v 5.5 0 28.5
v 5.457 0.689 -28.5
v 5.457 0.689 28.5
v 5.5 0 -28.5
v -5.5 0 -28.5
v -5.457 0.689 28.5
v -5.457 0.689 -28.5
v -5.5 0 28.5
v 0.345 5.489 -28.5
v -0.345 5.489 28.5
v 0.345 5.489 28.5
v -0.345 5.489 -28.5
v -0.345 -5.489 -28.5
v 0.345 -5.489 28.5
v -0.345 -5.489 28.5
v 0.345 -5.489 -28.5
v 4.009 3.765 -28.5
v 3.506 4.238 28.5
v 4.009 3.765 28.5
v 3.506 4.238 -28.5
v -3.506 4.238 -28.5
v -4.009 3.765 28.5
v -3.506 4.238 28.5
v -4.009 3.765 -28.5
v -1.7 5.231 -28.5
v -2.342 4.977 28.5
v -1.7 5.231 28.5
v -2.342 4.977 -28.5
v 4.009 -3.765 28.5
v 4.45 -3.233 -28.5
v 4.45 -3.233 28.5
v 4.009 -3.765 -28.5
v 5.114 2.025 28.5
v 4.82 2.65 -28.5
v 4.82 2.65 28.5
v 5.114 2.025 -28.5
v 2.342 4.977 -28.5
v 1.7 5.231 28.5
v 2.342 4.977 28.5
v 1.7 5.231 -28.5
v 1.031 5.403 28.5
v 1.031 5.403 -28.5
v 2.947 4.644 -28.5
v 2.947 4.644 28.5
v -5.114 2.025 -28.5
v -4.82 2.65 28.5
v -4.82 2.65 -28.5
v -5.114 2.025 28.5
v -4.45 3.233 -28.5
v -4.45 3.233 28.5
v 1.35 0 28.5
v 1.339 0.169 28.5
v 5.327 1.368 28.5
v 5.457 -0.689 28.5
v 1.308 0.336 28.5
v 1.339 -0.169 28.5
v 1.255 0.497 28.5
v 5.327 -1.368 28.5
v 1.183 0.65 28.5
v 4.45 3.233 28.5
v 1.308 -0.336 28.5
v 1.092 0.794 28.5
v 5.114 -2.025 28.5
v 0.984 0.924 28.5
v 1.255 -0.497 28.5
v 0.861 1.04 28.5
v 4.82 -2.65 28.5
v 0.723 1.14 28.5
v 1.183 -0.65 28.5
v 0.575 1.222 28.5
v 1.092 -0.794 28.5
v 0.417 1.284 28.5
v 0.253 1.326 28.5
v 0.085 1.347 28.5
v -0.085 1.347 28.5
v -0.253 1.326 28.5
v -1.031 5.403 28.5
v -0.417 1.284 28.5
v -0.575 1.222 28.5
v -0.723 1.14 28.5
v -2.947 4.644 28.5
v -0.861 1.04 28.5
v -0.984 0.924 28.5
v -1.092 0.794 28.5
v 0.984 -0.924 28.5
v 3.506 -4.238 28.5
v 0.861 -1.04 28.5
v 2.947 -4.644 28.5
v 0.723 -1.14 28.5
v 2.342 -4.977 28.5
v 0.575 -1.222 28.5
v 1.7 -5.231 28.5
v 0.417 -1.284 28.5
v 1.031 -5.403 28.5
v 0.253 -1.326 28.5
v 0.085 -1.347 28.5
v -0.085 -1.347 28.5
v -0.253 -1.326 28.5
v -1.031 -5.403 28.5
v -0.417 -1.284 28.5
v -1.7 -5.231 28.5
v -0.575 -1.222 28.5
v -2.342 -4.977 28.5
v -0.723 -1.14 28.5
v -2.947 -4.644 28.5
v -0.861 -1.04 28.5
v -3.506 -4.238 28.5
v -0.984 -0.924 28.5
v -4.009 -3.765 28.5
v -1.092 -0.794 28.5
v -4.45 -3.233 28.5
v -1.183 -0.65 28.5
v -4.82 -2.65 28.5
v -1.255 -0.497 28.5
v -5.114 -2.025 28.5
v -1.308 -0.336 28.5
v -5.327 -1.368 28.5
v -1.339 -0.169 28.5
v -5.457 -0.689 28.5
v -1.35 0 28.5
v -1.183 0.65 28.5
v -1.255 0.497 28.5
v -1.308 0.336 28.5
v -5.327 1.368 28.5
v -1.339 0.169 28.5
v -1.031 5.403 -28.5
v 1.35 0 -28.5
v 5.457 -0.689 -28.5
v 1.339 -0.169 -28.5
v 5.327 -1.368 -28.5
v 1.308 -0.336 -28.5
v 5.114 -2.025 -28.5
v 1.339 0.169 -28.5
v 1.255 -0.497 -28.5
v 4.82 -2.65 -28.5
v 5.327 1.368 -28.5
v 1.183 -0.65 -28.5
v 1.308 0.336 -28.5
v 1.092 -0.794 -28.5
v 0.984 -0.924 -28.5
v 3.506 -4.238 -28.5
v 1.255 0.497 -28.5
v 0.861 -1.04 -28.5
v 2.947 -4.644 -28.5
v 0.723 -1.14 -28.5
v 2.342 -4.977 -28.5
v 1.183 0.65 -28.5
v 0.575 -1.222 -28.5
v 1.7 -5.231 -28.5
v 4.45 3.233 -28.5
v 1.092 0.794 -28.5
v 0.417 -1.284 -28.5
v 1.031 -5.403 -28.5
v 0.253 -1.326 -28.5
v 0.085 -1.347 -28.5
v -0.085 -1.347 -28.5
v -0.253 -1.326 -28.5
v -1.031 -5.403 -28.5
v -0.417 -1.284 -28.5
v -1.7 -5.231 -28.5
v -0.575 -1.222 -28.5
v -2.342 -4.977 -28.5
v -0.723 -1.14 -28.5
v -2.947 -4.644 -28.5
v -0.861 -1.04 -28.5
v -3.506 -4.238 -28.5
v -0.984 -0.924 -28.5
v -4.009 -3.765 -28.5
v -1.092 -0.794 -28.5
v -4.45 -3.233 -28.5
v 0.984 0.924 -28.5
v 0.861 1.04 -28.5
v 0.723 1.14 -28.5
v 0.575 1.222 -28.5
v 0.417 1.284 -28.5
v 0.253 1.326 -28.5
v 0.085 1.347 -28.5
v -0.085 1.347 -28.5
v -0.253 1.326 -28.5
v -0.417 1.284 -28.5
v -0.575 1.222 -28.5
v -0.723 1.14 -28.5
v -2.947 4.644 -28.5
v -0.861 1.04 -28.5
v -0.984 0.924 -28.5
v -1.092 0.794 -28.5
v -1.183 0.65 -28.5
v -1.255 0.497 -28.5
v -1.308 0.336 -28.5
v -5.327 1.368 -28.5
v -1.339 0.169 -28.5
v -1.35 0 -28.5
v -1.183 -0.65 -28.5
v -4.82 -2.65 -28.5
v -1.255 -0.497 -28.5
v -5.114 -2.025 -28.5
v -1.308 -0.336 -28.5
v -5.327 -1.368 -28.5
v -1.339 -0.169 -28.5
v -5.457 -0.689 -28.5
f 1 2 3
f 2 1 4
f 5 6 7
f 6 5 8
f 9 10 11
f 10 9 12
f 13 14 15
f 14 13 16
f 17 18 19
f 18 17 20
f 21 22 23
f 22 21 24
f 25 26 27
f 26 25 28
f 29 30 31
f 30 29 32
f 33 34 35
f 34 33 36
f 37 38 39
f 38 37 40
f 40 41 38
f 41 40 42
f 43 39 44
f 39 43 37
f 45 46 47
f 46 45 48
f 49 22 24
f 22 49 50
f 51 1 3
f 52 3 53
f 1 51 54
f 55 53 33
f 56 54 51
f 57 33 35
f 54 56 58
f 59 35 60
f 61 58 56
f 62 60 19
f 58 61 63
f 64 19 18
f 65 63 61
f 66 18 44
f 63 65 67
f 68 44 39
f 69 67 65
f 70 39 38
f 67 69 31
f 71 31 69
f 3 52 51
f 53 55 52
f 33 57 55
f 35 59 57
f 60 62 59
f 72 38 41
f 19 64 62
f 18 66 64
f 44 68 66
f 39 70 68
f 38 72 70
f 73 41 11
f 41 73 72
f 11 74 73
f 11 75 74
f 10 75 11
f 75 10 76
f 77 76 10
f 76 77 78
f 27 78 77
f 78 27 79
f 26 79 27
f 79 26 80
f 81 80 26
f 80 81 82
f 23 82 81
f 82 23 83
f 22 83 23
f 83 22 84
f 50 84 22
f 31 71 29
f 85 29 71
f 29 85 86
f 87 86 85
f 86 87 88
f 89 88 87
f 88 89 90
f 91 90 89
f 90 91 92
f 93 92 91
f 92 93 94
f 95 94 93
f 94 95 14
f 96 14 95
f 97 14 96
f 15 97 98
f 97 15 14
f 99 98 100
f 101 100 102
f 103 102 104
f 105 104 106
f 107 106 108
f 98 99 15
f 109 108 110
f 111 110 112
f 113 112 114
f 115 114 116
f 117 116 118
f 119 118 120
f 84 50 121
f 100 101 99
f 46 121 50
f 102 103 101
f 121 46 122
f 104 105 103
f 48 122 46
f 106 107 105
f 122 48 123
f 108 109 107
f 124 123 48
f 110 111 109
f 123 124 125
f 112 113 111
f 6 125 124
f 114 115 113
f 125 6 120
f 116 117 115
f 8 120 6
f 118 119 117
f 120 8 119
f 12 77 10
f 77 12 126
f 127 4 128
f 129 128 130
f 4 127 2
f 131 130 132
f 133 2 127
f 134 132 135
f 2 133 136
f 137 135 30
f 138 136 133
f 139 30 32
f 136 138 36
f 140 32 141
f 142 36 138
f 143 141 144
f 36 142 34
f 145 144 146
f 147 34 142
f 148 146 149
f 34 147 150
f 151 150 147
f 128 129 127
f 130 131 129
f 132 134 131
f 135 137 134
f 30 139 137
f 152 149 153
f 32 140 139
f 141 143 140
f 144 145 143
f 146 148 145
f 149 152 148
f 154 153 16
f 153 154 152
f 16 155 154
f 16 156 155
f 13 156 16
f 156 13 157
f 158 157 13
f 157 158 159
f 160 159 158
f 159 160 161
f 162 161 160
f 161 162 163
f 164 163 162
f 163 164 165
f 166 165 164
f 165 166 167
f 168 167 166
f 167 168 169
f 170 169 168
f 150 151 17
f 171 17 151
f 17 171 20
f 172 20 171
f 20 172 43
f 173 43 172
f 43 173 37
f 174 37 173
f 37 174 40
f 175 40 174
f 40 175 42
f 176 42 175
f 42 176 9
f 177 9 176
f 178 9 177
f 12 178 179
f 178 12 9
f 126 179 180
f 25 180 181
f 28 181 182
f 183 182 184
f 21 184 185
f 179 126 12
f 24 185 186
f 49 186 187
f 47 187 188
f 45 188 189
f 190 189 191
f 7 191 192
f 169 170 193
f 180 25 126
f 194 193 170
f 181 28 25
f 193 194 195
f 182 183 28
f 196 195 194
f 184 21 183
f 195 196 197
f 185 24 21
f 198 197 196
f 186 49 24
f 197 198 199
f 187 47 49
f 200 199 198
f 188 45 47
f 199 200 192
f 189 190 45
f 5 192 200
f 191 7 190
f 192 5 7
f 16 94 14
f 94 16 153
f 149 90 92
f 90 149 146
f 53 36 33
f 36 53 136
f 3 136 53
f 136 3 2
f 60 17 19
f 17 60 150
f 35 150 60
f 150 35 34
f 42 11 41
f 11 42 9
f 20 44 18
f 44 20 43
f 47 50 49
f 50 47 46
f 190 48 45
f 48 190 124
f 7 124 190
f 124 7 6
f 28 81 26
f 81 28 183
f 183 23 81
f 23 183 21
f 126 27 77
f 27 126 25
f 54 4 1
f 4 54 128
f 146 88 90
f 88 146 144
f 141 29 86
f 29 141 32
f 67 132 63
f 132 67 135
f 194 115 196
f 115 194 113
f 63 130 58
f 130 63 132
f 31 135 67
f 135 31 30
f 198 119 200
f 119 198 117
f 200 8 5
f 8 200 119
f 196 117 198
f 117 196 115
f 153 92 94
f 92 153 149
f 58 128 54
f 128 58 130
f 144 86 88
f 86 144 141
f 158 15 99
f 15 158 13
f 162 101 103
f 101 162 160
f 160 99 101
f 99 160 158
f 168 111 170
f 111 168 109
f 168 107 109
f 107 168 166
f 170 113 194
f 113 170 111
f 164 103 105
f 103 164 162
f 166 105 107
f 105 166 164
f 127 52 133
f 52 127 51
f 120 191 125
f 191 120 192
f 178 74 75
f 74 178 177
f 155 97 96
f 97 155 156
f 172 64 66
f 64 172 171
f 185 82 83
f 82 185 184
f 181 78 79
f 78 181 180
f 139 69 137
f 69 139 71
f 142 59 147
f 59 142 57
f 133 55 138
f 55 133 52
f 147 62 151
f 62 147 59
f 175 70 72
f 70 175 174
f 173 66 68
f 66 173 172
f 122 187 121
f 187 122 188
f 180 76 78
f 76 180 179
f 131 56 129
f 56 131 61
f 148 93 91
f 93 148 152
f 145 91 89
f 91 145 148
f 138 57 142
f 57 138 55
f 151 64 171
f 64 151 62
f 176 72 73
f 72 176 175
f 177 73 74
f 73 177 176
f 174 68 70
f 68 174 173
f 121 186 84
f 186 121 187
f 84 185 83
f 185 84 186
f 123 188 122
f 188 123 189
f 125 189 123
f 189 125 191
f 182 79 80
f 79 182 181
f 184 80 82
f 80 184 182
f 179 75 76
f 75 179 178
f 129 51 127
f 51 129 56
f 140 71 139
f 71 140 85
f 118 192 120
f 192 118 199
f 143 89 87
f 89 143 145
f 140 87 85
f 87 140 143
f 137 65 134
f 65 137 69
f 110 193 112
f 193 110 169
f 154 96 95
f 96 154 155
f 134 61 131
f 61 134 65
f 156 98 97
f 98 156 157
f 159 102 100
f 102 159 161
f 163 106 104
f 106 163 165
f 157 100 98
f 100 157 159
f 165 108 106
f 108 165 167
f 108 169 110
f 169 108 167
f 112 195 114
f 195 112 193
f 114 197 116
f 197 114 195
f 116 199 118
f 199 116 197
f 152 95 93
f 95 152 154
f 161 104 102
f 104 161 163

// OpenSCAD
$fn = 50;


difference() {
	union() {
		translate(v = [0, 0, -28.5000000000]) {
			cylinder(h = 57, r = 5.5000000000);
		}
	}
	union() {
		translate(v = [0, 0, -100.0000000000]) {
			cylinder(h = 200, r = 1.3500000000);
		}
	}
}
